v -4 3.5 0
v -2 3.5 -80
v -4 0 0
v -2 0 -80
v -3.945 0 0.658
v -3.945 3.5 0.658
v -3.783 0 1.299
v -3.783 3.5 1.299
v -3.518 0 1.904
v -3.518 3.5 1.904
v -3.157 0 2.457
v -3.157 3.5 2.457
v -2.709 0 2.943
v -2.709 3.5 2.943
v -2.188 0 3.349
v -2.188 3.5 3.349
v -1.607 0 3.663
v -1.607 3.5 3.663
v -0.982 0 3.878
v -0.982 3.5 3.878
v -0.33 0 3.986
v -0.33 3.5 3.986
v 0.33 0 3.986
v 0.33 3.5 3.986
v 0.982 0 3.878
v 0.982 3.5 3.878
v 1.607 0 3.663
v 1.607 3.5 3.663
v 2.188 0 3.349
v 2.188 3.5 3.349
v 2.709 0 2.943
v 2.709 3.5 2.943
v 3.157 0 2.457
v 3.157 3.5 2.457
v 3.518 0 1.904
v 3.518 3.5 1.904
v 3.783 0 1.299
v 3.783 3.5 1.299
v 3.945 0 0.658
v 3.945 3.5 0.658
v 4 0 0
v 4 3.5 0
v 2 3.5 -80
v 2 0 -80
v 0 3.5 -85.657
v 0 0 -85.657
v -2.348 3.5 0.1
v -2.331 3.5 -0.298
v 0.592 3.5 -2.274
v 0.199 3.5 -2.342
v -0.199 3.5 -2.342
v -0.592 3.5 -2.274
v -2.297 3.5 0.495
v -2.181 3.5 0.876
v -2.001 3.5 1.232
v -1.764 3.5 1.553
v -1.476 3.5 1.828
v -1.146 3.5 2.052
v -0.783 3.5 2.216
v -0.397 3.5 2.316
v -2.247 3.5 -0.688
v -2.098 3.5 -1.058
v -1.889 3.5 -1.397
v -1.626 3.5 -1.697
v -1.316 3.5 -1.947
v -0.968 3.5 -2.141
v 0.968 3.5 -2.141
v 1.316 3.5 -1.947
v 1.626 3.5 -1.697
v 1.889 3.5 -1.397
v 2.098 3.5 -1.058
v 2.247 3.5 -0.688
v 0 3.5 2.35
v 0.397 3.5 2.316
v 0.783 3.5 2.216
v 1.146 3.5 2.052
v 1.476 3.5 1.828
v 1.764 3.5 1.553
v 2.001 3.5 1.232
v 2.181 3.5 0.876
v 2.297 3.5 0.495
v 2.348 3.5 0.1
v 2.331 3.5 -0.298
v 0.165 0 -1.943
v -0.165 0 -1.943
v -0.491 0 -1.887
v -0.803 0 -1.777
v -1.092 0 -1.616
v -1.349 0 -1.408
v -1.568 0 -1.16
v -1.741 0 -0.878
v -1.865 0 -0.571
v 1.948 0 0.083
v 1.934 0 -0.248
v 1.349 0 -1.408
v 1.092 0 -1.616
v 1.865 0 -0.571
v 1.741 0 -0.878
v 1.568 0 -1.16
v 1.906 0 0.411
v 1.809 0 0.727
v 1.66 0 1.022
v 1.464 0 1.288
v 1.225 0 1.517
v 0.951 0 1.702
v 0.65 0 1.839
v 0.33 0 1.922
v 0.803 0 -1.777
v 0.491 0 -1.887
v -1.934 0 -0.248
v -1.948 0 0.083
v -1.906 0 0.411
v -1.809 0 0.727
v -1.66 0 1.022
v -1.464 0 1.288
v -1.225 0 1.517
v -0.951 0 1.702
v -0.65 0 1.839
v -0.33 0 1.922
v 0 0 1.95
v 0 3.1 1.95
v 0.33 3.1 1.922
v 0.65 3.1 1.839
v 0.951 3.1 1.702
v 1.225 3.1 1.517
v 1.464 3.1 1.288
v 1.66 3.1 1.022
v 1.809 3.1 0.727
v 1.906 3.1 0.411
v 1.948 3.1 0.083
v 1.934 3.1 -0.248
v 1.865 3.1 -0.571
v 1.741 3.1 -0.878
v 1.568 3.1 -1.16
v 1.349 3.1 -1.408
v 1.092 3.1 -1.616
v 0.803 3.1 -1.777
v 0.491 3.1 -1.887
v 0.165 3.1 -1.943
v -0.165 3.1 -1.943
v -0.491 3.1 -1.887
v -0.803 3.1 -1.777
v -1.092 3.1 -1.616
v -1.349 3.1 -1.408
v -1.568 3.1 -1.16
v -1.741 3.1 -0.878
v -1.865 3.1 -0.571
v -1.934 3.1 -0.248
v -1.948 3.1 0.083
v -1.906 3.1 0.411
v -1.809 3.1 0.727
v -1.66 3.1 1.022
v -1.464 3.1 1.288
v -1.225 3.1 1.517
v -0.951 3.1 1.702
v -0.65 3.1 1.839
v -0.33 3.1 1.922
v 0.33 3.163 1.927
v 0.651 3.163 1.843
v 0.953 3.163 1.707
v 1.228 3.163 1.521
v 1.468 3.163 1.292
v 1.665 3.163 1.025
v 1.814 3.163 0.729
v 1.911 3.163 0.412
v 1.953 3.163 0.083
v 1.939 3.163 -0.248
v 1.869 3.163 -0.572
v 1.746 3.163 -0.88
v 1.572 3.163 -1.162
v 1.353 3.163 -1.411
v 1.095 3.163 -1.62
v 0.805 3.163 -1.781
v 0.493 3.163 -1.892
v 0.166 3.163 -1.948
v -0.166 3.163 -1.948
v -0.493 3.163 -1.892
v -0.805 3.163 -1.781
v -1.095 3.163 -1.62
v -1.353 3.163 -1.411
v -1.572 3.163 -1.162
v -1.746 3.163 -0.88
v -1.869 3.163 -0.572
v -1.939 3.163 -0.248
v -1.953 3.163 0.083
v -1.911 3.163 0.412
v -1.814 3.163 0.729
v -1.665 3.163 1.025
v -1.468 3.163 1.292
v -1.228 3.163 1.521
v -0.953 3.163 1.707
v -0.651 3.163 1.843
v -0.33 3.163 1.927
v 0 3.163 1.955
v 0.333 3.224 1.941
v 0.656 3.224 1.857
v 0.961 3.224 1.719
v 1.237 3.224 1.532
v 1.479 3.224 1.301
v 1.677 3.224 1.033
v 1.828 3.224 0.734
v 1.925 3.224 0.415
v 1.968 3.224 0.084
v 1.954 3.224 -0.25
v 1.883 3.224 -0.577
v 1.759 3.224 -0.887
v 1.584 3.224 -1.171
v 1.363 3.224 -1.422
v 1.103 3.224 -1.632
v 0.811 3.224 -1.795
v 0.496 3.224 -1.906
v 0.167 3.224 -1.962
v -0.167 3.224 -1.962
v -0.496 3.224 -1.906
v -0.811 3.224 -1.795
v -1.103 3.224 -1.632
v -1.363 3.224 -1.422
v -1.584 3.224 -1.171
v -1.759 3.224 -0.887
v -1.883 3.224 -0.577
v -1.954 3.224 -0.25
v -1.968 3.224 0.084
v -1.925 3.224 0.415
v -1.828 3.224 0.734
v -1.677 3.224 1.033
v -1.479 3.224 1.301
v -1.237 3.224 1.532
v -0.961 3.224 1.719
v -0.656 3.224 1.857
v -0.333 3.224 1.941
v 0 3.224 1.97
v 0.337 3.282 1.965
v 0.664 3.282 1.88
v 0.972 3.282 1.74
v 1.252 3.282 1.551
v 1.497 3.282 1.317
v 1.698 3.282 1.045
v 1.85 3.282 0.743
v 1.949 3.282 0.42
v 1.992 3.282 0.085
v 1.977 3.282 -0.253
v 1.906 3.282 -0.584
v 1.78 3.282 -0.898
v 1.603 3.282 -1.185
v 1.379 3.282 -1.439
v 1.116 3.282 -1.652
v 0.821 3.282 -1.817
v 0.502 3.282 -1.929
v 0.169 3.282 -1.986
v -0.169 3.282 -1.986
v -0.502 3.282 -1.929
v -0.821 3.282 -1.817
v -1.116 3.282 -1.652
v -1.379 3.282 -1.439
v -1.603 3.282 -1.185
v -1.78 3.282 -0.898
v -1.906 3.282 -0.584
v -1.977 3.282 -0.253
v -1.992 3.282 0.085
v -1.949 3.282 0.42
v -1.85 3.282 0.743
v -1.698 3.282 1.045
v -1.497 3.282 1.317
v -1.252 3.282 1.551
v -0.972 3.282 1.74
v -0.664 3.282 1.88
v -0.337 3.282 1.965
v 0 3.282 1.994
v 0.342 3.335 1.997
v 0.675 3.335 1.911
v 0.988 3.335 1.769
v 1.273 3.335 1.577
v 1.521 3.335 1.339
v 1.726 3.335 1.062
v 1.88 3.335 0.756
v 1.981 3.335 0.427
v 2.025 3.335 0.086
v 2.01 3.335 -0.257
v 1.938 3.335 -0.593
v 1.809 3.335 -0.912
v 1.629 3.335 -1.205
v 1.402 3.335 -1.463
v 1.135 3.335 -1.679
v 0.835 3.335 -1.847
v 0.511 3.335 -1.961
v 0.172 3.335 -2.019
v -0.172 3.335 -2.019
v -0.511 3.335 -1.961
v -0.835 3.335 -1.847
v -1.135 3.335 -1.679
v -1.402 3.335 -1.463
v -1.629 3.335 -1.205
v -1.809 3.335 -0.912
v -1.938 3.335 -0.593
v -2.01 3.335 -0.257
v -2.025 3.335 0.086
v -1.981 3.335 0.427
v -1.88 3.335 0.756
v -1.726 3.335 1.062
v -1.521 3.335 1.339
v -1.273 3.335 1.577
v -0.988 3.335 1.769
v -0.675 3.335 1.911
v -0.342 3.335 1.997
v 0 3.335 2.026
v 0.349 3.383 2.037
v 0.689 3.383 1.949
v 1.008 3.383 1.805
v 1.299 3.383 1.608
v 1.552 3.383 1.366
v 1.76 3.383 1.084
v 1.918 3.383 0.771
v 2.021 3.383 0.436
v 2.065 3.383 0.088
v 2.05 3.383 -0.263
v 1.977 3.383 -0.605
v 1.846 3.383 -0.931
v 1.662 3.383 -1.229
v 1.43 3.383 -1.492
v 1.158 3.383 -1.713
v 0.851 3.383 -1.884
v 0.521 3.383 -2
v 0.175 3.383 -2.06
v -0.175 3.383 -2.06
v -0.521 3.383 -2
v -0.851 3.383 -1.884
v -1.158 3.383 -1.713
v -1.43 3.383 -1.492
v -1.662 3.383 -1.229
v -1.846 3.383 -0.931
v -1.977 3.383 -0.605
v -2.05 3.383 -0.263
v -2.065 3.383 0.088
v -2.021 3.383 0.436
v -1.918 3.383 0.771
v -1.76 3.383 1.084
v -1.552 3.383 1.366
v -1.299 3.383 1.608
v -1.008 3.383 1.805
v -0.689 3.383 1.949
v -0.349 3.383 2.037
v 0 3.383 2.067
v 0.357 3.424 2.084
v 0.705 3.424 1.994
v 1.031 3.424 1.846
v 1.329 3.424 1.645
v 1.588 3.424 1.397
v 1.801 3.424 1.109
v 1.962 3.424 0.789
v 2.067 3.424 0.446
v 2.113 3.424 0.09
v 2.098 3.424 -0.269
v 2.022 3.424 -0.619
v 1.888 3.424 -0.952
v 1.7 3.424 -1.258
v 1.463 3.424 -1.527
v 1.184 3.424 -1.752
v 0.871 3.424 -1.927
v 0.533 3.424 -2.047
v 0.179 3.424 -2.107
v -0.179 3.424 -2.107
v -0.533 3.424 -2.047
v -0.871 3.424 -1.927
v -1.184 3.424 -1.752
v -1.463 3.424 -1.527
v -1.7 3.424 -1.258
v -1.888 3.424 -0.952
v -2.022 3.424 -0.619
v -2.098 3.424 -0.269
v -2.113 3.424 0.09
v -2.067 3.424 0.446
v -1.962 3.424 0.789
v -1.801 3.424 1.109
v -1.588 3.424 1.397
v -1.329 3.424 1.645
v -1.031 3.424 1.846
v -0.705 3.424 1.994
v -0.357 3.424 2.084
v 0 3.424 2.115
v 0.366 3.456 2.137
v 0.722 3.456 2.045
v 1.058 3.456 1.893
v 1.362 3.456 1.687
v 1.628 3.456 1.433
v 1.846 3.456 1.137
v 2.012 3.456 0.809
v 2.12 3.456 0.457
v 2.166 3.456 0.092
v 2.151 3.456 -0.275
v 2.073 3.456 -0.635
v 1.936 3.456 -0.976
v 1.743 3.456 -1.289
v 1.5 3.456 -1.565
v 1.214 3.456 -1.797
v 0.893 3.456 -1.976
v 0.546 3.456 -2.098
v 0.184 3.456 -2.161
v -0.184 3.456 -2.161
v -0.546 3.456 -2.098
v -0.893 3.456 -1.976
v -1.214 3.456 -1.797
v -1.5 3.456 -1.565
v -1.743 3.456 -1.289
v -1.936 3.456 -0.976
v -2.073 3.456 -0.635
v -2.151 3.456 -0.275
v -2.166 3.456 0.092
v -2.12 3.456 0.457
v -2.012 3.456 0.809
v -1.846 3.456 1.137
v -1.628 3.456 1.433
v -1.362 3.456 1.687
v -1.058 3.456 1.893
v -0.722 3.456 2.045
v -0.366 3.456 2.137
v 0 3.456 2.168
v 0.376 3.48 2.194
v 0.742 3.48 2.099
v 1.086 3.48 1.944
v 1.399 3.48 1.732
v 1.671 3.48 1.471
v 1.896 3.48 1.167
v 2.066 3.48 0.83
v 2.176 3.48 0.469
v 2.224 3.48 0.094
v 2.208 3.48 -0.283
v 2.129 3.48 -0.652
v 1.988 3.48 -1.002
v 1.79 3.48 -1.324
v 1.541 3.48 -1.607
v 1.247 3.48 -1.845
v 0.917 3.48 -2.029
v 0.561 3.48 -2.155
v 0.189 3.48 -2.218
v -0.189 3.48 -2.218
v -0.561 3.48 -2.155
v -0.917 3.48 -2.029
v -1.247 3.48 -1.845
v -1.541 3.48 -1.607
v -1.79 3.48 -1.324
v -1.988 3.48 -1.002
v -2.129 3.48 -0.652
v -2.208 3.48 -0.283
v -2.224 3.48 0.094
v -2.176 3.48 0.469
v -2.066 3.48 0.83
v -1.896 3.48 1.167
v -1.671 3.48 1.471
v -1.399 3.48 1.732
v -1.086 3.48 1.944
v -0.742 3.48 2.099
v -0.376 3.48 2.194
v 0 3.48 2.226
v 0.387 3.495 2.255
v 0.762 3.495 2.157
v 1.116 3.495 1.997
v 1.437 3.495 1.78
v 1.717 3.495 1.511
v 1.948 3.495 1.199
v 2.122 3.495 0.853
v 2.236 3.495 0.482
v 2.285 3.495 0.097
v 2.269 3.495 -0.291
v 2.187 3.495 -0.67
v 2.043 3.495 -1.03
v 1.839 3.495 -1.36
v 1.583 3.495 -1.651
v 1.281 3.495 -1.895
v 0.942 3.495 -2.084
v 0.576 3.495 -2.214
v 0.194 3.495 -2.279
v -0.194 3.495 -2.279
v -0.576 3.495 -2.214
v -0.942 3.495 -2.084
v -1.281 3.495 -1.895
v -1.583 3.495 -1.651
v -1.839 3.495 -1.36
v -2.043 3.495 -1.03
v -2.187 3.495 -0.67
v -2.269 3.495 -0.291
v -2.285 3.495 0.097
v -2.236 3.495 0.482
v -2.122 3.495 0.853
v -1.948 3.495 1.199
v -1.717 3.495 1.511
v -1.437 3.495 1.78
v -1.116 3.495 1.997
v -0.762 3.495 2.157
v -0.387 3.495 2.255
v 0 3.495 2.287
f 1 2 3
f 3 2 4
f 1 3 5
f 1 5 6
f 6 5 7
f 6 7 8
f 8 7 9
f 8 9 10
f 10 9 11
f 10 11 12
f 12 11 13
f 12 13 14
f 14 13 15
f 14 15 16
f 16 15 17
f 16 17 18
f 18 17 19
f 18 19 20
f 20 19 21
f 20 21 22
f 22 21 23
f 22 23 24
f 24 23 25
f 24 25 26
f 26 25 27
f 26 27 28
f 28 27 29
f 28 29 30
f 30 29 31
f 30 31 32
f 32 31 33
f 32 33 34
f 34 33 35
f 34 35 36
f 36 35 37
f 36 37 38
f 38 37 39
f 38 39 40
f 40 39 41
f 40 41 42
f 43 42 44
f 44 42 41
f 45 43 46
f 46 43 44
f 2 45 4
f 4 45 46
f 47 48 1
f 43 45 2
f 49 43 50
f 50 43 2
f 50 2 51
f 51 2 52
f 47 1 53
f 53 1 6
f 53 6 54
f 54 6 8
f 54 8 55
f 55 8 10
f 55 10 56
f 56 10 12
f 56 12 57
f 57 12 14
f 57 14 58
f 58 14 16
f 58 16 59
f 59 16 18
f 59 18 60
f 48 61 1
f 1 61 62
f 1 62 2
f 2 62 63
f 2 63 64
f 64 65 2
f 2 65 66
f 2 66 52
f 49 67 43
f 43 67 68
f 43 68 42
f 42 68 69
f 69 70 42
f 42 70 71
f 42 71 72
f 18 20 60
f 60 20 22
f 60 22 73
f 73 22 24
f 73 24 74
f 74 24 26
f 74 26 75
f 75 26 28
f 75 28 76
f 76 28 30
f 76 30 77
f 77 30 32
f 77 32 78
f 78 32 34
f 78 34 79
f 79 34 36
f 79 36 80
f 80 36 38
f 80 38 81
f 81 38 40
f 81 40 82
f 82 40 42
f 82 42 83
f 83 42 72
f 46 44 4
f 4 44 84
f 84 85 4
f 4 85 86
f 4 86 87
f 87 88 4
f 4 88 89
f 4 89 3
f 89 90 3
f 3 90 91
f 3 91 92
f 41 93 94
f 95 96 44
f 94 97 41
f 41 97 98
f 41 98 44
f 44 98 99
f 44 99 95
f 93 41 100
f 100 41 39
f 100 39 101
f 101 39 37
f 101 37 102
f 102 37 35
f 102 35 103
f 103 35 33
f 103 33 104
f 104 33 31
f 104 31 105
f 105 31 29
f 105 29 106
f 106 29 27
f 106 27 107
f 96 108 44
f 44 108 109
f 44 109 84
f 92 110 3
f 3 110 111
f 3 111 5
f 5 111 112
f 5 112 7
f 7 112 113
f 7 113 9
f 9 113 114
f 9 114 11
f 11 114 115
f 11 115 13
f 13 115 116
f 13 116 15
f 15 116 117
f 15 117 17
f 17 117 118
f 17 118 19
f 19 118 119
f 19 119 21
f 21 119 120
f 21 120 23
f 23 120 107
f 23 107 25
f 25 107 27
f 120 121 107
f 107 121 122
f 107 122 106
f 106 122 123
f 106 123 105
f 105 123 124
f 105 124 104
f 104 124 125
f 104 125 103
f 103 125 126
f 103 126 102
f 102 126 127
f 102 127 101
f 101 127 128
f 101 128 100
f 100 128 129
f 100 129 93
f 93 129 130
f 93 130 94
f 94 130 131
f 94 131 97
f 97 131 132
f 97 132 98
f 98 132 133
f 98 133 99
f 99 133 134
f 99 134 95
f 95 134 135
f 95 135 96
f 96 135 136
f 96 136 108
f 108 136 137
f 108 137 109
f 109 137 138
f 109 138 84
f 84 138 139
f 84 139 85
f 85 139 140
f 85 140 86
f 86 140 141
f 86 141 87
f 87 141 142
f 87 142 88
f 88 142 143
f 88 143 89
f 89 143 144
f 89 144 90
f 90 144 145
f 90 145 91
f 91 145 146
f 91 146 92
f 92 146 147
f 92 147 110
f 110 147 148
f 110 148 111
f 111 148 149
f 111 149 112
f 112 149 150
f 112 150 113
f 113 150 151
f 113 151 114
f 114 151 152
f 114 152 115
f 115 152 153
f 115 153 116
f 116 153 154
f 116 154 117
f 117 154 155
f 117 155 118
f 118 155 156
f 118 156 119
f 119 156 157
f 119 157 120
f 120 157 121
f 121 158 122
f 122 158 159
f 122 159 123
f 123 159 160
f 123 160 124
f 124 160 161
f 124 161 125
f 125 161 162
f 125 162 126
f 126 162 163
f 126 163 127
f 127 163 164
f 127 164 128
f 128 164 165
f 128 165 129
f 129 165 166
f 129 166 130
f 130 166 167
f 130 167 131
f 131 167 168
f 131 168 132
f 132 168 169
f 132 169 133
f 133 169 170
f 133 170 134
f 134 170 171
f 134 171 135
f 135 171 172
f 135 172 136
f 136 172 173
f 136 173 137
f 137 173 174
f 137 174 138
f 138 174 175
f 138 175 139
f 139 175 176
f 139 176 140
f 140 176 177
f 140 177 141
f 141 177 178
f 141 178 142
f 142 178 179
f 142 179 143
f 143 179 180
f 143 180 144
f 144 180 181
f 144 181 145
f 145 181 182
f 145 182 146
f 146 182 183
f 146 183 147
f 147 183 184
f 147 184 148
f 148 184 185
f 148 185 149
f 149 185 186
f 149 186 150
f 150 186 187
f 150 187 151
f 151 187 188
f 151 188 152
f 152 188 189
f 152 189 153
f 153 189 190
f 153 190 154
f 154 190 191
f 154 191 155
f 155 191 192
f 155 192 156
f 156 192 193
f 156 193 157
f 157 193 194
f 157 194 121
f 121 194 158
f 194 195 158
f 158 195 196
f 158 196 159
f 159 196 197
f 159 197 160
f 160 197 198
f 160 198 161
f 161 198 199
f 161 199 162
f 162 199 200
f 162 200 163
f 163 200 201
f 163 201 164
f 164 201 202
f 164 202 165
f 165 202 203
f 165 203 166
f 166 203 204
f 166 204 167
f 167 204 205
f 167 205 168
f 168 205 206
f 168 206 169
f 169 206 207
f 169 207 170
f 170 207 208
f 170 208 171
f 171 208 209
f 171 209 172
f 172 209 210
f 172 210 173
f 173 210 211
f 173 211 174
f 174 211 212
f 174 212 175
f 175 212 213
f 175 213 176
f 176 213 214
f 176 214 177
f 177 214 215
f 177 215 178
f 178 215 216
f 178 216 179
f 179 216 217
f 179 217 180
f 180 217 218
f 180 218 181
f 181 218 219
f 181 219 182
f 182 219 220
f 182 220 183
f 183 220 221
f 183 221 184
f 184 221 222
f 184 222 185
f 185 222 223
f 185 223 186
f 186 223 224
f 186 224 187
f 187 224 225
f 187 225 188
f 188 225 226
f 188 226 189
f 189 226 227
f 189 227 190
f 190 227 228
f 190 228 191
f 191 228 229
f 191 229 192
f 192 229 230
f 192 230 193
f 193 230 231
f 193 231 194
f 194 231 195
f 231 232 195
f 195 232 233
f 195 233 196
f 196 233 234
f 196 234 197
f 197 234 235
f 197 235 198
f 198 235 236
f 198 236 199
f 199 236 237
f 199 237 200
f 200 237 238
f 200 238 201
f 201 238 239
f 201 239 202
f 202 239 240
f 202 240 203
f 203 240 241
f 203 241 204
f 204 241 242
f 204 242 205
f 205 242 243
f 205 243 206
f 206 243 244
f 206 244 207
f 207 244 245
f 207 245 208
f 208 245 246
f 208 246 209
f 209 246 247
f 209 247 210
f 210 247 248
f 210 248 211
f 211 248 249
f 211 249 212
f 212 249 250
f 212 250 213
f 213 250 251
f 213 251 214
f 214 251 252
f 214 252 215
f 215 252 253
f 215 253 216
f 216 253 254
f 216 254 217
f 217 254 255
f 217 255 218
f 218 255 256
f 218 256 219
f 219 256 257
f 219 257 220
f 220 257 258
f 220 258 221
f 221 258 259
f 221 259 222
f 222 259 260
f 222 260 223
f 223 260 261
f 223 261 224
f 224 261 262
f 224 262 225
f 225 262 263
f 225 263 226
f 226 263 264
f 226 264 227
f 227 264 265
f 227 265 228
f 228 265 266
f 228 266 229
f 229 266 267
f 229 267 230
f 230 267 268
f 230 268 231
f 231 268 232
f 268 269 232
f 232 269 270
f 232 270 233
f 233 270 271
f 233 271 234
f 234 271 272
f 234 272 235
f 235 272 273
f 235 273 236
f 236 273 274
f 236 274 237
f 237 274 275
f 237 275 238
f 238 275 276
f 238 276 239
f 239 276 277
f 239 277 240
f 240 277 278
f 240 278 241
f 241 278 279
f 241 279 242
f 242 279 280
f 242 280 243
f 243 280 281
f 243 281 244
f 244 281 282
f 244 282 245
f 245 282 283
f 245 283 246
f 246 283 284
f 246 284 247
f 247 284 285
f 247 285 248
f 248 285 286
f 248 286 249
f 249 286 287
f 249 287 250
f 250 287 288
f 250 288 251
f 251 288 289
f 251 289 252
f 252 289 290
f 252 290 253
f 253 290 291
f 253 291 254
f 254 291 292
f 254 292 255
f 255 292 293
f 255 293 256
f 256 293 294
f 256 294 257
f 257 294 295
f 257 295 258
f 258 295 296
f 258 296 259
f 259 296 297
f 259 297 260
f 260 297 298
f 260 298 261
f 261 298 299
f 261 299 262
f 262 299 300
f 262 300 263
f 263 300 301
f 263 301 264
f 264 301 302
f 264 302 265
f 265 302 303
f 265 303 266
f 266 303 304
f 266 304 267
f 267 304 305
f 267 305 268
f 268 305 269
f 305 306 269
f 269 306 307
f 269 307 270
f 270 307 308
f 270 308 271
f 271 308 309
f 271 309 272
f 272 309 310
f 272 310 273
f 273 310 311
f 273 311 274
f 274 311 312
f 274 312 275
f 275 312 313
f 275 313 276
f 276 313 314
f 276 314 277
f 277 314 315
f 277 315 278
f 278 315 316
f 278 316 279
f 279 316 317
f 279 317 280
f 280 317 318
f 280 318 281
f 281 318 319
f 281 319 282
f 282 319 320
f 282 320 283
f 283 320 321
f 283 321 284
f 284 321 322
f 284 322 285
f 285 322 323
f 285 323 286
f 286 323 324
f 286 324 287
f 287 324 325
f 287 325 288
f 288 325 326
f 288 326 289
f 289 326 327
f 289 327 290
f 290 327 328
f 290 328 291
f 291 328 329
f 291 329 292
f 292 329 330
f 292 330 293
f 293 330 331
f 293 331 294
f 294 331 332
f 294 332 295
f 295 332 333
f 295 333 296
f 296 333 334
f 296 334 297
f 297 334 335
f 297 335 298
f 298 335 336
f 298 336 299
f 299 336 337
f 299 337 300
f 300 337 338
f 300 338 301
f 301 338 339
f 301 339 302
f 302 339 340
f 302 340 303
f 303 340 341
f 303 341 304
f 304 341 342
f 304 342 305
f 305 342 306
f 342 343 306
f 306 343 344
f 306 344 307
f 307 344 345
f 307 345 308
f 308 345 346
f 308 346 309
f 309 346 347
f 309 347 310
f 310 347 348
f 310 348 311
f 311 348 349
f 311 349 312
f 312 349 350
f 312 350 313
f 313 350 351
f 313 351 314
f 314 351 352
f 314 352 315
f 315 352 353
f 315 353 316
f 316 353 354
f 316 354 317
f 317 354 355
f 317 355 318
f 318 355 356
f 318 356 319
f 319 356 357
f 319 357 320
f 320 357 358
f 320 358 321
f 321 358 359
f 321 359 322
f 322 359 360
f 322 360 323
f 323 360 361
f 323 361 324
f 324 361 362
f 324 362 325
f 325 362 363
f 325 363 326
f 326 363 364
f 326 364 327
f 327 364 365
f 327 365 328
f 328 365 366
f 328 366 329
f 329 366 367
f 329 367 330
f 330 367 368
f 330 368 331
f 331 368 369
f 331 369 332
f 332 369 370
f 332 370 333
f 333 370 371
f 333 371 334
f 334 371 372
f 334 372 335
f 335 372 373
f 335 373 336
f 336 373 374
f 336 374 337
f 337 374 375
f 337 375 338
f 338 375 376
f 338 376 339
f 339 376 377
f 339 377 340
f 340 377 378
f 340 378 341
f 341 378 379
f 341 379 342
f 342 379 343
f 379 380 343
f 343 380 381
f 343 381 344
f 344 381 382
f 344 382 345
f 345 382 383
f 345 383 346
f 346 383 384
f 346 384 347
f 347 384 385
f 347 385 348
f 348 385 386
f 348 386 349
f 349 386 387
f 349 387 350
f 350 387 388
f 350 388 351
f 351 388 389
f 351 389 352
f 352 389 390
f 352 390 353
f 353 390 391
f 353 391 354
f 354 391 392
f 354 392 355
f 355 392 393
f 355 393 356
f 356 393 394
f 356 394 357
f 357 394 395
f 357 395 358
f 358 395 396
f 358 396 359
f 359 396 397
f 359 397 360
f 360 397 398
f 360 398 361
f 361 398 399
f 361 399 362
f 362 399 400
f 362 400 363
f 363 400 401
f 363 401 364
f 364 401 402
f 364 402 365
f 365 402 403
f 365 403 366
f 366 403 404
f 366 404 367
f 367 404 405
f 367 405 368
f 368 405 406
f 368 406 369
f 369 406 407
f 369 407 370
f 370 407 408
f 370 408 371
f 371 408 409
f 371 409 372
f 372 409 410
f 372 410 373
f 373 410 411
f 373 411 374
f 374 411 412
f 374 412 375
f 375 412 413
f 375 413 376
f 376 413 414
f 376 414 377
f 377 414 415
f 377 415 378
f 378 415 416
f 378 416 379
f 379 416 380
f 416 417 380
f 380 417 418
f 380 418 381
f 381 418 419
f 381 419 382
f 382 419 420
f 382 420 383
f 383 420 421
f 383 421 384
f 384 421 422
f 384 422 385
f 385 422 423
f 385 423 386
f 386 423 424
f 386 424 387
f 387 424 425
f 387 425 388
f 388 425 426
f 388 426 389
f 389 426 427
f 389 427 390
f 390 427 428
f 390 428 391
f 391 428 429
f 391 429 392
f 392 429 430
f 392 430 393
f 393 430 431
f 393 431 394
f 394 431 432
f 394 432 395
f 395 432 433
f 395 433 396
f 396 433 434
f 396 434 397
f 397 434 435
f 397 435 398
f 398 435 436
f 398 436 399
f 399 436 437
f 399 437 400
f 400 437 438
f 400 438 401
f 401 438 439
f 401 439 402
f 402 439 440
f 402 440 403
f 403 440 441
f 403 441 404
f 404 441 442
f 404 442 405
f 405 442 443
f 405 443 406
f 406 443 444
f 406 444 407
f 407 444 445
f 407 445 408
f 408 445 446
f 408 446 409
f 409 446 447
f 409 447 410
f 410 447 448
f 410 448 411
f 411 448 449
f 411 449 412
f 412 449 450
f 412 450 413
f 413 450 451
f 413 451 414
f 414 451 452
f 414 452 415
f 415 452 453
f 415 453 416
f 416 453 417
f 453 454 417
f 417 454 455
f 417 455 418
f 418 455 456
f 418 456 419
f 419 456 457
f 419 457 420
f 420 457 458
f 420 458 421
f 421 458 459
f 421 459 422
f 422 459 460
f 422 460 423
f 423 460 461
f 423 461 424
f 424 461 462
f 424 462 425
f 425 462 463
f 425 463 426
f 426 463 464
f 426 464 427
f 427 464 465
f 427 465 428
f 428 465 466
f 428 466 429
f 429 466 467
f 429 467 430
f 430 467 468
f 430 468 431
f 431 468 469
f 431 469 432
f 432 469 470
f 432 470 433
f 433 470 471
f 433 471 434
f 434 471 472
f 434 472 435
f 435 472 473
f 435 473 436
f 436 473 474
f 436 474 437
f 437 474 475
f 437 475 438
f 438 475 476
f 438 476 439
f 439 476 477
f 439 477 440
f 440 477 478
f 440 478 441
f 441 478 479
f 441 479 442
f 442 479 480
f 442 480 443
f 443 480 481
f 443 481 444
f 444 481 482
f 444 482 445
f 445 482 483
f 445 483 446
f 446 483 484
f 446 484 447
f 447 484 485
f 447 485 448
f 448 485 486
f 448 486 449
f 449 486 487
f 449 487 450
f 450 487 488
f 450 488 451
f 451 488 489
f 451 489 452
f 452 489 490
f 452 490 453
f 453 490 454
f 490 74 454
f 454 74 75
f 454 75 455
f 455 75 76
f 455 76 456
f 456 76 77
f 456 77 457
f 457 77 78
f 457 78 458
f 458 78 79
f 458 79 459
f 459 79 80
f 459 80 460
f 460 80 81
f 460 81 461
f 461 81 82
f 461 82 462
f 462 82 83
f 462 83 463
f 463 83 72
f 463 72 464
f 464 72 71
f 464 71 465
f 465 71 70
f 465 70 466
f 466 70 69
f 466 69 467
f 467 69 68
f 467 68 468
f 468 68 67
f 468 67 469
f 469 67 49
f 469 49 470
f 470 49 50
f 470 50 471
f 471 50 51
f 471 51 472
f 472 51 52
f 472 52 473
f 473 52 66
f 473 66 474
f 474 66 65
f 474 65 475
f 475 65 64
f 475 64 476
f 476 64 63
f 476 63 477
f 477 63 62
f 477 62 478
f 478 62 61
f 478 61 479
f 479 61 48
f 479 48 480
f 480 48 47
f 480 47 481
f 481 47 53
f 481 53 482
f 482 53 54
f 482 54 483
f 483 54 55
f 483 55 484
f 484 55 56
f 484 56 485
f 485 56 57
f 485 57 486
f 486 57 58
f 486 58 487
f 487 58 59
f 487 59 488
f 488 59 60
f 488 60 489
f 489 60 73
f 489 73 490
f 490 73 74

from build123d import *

# Parameters (mm, degrees)
SKICA1_R                 = 1.75
P_IDAT_VYSUNUT_M1_DEPTH  = 3.5
SKICA2_R                 = 1.95
ODEBRAT_VYSUNUT_M1_DEPTH = 100
ZAOBLIT1_R               = 0.4


with BuildPart() as part:
    # Skica1 → Přidat vysunutím1 (new body)
    # profile 1 of 2: a face of its own
    with BuildSketch(Plane(origin=(0, 0, 0), x_dir=(1, 0, 0), z_dir=(0, 1, 0))):
        with BuildLine():
            Line((-2, 80), (-3.995003123, 0.199875078))
            ThreePointArc((-3.995003123, 0.199875078), (0, 4), (3.995003123, 0.199875078))
            Line((3.995003123, 0.199875078), (2, 80))
            Line((2, 80), (0, 85.656854249))
            Line((0, 85.656854249), (-2, 80))
        make_face()
    # profile 2 of 2: a face of its own
    with BuildSketch(Plane(origin=(0, 0, 0), x_dir=(1, 0, 0), z_dir=(0, 1, 0))):
        with BuildLine():
            Line((-3.995003123, 0.199875078), (-4, 0))
            ThreePointArc((-4, 0), (0, -4), (4, 0))
            Line((4, 0), (3.995003123, 0.199875078))
            ThreePointArc((3.995003123, 0.199875078), (0, 4), (-3.995003123, 0.199875078))
        make_face()
        with Locations(Location((0, 0, 0), (0, 0, 270))):
            Circle(SKICA1_R, mode=Mode.SUBTRACT)
    extrude(amount=P_IDAT_VYSUNUT_M1_DEPTH)

    # Skica2 → Odebrat vysunutím1 (cut)
    with BuildSketch(Plane(origin=(0, 3.5, 0), x_dir=(1, 0, 0), z_dir=(0, 1, 0))):
        with Locations(Location((0, 0, 0), (0, 0, 270))):
            Circle(SKICA2_R)
    extrude(amount=-ODEBRAT_VYSUNUT_M1_DEPTH, mode=Mode.SUBTRACT)

    # Zaoblit1
    zaoblit1_edges = [part.edges().sort_by_distance(p)[0] for p in [
        (0, 3.5, -1.95),
    ]]
    fillet(zaoblit1_edges, radius=ZAOBLIT1_R)


solid = part.part
